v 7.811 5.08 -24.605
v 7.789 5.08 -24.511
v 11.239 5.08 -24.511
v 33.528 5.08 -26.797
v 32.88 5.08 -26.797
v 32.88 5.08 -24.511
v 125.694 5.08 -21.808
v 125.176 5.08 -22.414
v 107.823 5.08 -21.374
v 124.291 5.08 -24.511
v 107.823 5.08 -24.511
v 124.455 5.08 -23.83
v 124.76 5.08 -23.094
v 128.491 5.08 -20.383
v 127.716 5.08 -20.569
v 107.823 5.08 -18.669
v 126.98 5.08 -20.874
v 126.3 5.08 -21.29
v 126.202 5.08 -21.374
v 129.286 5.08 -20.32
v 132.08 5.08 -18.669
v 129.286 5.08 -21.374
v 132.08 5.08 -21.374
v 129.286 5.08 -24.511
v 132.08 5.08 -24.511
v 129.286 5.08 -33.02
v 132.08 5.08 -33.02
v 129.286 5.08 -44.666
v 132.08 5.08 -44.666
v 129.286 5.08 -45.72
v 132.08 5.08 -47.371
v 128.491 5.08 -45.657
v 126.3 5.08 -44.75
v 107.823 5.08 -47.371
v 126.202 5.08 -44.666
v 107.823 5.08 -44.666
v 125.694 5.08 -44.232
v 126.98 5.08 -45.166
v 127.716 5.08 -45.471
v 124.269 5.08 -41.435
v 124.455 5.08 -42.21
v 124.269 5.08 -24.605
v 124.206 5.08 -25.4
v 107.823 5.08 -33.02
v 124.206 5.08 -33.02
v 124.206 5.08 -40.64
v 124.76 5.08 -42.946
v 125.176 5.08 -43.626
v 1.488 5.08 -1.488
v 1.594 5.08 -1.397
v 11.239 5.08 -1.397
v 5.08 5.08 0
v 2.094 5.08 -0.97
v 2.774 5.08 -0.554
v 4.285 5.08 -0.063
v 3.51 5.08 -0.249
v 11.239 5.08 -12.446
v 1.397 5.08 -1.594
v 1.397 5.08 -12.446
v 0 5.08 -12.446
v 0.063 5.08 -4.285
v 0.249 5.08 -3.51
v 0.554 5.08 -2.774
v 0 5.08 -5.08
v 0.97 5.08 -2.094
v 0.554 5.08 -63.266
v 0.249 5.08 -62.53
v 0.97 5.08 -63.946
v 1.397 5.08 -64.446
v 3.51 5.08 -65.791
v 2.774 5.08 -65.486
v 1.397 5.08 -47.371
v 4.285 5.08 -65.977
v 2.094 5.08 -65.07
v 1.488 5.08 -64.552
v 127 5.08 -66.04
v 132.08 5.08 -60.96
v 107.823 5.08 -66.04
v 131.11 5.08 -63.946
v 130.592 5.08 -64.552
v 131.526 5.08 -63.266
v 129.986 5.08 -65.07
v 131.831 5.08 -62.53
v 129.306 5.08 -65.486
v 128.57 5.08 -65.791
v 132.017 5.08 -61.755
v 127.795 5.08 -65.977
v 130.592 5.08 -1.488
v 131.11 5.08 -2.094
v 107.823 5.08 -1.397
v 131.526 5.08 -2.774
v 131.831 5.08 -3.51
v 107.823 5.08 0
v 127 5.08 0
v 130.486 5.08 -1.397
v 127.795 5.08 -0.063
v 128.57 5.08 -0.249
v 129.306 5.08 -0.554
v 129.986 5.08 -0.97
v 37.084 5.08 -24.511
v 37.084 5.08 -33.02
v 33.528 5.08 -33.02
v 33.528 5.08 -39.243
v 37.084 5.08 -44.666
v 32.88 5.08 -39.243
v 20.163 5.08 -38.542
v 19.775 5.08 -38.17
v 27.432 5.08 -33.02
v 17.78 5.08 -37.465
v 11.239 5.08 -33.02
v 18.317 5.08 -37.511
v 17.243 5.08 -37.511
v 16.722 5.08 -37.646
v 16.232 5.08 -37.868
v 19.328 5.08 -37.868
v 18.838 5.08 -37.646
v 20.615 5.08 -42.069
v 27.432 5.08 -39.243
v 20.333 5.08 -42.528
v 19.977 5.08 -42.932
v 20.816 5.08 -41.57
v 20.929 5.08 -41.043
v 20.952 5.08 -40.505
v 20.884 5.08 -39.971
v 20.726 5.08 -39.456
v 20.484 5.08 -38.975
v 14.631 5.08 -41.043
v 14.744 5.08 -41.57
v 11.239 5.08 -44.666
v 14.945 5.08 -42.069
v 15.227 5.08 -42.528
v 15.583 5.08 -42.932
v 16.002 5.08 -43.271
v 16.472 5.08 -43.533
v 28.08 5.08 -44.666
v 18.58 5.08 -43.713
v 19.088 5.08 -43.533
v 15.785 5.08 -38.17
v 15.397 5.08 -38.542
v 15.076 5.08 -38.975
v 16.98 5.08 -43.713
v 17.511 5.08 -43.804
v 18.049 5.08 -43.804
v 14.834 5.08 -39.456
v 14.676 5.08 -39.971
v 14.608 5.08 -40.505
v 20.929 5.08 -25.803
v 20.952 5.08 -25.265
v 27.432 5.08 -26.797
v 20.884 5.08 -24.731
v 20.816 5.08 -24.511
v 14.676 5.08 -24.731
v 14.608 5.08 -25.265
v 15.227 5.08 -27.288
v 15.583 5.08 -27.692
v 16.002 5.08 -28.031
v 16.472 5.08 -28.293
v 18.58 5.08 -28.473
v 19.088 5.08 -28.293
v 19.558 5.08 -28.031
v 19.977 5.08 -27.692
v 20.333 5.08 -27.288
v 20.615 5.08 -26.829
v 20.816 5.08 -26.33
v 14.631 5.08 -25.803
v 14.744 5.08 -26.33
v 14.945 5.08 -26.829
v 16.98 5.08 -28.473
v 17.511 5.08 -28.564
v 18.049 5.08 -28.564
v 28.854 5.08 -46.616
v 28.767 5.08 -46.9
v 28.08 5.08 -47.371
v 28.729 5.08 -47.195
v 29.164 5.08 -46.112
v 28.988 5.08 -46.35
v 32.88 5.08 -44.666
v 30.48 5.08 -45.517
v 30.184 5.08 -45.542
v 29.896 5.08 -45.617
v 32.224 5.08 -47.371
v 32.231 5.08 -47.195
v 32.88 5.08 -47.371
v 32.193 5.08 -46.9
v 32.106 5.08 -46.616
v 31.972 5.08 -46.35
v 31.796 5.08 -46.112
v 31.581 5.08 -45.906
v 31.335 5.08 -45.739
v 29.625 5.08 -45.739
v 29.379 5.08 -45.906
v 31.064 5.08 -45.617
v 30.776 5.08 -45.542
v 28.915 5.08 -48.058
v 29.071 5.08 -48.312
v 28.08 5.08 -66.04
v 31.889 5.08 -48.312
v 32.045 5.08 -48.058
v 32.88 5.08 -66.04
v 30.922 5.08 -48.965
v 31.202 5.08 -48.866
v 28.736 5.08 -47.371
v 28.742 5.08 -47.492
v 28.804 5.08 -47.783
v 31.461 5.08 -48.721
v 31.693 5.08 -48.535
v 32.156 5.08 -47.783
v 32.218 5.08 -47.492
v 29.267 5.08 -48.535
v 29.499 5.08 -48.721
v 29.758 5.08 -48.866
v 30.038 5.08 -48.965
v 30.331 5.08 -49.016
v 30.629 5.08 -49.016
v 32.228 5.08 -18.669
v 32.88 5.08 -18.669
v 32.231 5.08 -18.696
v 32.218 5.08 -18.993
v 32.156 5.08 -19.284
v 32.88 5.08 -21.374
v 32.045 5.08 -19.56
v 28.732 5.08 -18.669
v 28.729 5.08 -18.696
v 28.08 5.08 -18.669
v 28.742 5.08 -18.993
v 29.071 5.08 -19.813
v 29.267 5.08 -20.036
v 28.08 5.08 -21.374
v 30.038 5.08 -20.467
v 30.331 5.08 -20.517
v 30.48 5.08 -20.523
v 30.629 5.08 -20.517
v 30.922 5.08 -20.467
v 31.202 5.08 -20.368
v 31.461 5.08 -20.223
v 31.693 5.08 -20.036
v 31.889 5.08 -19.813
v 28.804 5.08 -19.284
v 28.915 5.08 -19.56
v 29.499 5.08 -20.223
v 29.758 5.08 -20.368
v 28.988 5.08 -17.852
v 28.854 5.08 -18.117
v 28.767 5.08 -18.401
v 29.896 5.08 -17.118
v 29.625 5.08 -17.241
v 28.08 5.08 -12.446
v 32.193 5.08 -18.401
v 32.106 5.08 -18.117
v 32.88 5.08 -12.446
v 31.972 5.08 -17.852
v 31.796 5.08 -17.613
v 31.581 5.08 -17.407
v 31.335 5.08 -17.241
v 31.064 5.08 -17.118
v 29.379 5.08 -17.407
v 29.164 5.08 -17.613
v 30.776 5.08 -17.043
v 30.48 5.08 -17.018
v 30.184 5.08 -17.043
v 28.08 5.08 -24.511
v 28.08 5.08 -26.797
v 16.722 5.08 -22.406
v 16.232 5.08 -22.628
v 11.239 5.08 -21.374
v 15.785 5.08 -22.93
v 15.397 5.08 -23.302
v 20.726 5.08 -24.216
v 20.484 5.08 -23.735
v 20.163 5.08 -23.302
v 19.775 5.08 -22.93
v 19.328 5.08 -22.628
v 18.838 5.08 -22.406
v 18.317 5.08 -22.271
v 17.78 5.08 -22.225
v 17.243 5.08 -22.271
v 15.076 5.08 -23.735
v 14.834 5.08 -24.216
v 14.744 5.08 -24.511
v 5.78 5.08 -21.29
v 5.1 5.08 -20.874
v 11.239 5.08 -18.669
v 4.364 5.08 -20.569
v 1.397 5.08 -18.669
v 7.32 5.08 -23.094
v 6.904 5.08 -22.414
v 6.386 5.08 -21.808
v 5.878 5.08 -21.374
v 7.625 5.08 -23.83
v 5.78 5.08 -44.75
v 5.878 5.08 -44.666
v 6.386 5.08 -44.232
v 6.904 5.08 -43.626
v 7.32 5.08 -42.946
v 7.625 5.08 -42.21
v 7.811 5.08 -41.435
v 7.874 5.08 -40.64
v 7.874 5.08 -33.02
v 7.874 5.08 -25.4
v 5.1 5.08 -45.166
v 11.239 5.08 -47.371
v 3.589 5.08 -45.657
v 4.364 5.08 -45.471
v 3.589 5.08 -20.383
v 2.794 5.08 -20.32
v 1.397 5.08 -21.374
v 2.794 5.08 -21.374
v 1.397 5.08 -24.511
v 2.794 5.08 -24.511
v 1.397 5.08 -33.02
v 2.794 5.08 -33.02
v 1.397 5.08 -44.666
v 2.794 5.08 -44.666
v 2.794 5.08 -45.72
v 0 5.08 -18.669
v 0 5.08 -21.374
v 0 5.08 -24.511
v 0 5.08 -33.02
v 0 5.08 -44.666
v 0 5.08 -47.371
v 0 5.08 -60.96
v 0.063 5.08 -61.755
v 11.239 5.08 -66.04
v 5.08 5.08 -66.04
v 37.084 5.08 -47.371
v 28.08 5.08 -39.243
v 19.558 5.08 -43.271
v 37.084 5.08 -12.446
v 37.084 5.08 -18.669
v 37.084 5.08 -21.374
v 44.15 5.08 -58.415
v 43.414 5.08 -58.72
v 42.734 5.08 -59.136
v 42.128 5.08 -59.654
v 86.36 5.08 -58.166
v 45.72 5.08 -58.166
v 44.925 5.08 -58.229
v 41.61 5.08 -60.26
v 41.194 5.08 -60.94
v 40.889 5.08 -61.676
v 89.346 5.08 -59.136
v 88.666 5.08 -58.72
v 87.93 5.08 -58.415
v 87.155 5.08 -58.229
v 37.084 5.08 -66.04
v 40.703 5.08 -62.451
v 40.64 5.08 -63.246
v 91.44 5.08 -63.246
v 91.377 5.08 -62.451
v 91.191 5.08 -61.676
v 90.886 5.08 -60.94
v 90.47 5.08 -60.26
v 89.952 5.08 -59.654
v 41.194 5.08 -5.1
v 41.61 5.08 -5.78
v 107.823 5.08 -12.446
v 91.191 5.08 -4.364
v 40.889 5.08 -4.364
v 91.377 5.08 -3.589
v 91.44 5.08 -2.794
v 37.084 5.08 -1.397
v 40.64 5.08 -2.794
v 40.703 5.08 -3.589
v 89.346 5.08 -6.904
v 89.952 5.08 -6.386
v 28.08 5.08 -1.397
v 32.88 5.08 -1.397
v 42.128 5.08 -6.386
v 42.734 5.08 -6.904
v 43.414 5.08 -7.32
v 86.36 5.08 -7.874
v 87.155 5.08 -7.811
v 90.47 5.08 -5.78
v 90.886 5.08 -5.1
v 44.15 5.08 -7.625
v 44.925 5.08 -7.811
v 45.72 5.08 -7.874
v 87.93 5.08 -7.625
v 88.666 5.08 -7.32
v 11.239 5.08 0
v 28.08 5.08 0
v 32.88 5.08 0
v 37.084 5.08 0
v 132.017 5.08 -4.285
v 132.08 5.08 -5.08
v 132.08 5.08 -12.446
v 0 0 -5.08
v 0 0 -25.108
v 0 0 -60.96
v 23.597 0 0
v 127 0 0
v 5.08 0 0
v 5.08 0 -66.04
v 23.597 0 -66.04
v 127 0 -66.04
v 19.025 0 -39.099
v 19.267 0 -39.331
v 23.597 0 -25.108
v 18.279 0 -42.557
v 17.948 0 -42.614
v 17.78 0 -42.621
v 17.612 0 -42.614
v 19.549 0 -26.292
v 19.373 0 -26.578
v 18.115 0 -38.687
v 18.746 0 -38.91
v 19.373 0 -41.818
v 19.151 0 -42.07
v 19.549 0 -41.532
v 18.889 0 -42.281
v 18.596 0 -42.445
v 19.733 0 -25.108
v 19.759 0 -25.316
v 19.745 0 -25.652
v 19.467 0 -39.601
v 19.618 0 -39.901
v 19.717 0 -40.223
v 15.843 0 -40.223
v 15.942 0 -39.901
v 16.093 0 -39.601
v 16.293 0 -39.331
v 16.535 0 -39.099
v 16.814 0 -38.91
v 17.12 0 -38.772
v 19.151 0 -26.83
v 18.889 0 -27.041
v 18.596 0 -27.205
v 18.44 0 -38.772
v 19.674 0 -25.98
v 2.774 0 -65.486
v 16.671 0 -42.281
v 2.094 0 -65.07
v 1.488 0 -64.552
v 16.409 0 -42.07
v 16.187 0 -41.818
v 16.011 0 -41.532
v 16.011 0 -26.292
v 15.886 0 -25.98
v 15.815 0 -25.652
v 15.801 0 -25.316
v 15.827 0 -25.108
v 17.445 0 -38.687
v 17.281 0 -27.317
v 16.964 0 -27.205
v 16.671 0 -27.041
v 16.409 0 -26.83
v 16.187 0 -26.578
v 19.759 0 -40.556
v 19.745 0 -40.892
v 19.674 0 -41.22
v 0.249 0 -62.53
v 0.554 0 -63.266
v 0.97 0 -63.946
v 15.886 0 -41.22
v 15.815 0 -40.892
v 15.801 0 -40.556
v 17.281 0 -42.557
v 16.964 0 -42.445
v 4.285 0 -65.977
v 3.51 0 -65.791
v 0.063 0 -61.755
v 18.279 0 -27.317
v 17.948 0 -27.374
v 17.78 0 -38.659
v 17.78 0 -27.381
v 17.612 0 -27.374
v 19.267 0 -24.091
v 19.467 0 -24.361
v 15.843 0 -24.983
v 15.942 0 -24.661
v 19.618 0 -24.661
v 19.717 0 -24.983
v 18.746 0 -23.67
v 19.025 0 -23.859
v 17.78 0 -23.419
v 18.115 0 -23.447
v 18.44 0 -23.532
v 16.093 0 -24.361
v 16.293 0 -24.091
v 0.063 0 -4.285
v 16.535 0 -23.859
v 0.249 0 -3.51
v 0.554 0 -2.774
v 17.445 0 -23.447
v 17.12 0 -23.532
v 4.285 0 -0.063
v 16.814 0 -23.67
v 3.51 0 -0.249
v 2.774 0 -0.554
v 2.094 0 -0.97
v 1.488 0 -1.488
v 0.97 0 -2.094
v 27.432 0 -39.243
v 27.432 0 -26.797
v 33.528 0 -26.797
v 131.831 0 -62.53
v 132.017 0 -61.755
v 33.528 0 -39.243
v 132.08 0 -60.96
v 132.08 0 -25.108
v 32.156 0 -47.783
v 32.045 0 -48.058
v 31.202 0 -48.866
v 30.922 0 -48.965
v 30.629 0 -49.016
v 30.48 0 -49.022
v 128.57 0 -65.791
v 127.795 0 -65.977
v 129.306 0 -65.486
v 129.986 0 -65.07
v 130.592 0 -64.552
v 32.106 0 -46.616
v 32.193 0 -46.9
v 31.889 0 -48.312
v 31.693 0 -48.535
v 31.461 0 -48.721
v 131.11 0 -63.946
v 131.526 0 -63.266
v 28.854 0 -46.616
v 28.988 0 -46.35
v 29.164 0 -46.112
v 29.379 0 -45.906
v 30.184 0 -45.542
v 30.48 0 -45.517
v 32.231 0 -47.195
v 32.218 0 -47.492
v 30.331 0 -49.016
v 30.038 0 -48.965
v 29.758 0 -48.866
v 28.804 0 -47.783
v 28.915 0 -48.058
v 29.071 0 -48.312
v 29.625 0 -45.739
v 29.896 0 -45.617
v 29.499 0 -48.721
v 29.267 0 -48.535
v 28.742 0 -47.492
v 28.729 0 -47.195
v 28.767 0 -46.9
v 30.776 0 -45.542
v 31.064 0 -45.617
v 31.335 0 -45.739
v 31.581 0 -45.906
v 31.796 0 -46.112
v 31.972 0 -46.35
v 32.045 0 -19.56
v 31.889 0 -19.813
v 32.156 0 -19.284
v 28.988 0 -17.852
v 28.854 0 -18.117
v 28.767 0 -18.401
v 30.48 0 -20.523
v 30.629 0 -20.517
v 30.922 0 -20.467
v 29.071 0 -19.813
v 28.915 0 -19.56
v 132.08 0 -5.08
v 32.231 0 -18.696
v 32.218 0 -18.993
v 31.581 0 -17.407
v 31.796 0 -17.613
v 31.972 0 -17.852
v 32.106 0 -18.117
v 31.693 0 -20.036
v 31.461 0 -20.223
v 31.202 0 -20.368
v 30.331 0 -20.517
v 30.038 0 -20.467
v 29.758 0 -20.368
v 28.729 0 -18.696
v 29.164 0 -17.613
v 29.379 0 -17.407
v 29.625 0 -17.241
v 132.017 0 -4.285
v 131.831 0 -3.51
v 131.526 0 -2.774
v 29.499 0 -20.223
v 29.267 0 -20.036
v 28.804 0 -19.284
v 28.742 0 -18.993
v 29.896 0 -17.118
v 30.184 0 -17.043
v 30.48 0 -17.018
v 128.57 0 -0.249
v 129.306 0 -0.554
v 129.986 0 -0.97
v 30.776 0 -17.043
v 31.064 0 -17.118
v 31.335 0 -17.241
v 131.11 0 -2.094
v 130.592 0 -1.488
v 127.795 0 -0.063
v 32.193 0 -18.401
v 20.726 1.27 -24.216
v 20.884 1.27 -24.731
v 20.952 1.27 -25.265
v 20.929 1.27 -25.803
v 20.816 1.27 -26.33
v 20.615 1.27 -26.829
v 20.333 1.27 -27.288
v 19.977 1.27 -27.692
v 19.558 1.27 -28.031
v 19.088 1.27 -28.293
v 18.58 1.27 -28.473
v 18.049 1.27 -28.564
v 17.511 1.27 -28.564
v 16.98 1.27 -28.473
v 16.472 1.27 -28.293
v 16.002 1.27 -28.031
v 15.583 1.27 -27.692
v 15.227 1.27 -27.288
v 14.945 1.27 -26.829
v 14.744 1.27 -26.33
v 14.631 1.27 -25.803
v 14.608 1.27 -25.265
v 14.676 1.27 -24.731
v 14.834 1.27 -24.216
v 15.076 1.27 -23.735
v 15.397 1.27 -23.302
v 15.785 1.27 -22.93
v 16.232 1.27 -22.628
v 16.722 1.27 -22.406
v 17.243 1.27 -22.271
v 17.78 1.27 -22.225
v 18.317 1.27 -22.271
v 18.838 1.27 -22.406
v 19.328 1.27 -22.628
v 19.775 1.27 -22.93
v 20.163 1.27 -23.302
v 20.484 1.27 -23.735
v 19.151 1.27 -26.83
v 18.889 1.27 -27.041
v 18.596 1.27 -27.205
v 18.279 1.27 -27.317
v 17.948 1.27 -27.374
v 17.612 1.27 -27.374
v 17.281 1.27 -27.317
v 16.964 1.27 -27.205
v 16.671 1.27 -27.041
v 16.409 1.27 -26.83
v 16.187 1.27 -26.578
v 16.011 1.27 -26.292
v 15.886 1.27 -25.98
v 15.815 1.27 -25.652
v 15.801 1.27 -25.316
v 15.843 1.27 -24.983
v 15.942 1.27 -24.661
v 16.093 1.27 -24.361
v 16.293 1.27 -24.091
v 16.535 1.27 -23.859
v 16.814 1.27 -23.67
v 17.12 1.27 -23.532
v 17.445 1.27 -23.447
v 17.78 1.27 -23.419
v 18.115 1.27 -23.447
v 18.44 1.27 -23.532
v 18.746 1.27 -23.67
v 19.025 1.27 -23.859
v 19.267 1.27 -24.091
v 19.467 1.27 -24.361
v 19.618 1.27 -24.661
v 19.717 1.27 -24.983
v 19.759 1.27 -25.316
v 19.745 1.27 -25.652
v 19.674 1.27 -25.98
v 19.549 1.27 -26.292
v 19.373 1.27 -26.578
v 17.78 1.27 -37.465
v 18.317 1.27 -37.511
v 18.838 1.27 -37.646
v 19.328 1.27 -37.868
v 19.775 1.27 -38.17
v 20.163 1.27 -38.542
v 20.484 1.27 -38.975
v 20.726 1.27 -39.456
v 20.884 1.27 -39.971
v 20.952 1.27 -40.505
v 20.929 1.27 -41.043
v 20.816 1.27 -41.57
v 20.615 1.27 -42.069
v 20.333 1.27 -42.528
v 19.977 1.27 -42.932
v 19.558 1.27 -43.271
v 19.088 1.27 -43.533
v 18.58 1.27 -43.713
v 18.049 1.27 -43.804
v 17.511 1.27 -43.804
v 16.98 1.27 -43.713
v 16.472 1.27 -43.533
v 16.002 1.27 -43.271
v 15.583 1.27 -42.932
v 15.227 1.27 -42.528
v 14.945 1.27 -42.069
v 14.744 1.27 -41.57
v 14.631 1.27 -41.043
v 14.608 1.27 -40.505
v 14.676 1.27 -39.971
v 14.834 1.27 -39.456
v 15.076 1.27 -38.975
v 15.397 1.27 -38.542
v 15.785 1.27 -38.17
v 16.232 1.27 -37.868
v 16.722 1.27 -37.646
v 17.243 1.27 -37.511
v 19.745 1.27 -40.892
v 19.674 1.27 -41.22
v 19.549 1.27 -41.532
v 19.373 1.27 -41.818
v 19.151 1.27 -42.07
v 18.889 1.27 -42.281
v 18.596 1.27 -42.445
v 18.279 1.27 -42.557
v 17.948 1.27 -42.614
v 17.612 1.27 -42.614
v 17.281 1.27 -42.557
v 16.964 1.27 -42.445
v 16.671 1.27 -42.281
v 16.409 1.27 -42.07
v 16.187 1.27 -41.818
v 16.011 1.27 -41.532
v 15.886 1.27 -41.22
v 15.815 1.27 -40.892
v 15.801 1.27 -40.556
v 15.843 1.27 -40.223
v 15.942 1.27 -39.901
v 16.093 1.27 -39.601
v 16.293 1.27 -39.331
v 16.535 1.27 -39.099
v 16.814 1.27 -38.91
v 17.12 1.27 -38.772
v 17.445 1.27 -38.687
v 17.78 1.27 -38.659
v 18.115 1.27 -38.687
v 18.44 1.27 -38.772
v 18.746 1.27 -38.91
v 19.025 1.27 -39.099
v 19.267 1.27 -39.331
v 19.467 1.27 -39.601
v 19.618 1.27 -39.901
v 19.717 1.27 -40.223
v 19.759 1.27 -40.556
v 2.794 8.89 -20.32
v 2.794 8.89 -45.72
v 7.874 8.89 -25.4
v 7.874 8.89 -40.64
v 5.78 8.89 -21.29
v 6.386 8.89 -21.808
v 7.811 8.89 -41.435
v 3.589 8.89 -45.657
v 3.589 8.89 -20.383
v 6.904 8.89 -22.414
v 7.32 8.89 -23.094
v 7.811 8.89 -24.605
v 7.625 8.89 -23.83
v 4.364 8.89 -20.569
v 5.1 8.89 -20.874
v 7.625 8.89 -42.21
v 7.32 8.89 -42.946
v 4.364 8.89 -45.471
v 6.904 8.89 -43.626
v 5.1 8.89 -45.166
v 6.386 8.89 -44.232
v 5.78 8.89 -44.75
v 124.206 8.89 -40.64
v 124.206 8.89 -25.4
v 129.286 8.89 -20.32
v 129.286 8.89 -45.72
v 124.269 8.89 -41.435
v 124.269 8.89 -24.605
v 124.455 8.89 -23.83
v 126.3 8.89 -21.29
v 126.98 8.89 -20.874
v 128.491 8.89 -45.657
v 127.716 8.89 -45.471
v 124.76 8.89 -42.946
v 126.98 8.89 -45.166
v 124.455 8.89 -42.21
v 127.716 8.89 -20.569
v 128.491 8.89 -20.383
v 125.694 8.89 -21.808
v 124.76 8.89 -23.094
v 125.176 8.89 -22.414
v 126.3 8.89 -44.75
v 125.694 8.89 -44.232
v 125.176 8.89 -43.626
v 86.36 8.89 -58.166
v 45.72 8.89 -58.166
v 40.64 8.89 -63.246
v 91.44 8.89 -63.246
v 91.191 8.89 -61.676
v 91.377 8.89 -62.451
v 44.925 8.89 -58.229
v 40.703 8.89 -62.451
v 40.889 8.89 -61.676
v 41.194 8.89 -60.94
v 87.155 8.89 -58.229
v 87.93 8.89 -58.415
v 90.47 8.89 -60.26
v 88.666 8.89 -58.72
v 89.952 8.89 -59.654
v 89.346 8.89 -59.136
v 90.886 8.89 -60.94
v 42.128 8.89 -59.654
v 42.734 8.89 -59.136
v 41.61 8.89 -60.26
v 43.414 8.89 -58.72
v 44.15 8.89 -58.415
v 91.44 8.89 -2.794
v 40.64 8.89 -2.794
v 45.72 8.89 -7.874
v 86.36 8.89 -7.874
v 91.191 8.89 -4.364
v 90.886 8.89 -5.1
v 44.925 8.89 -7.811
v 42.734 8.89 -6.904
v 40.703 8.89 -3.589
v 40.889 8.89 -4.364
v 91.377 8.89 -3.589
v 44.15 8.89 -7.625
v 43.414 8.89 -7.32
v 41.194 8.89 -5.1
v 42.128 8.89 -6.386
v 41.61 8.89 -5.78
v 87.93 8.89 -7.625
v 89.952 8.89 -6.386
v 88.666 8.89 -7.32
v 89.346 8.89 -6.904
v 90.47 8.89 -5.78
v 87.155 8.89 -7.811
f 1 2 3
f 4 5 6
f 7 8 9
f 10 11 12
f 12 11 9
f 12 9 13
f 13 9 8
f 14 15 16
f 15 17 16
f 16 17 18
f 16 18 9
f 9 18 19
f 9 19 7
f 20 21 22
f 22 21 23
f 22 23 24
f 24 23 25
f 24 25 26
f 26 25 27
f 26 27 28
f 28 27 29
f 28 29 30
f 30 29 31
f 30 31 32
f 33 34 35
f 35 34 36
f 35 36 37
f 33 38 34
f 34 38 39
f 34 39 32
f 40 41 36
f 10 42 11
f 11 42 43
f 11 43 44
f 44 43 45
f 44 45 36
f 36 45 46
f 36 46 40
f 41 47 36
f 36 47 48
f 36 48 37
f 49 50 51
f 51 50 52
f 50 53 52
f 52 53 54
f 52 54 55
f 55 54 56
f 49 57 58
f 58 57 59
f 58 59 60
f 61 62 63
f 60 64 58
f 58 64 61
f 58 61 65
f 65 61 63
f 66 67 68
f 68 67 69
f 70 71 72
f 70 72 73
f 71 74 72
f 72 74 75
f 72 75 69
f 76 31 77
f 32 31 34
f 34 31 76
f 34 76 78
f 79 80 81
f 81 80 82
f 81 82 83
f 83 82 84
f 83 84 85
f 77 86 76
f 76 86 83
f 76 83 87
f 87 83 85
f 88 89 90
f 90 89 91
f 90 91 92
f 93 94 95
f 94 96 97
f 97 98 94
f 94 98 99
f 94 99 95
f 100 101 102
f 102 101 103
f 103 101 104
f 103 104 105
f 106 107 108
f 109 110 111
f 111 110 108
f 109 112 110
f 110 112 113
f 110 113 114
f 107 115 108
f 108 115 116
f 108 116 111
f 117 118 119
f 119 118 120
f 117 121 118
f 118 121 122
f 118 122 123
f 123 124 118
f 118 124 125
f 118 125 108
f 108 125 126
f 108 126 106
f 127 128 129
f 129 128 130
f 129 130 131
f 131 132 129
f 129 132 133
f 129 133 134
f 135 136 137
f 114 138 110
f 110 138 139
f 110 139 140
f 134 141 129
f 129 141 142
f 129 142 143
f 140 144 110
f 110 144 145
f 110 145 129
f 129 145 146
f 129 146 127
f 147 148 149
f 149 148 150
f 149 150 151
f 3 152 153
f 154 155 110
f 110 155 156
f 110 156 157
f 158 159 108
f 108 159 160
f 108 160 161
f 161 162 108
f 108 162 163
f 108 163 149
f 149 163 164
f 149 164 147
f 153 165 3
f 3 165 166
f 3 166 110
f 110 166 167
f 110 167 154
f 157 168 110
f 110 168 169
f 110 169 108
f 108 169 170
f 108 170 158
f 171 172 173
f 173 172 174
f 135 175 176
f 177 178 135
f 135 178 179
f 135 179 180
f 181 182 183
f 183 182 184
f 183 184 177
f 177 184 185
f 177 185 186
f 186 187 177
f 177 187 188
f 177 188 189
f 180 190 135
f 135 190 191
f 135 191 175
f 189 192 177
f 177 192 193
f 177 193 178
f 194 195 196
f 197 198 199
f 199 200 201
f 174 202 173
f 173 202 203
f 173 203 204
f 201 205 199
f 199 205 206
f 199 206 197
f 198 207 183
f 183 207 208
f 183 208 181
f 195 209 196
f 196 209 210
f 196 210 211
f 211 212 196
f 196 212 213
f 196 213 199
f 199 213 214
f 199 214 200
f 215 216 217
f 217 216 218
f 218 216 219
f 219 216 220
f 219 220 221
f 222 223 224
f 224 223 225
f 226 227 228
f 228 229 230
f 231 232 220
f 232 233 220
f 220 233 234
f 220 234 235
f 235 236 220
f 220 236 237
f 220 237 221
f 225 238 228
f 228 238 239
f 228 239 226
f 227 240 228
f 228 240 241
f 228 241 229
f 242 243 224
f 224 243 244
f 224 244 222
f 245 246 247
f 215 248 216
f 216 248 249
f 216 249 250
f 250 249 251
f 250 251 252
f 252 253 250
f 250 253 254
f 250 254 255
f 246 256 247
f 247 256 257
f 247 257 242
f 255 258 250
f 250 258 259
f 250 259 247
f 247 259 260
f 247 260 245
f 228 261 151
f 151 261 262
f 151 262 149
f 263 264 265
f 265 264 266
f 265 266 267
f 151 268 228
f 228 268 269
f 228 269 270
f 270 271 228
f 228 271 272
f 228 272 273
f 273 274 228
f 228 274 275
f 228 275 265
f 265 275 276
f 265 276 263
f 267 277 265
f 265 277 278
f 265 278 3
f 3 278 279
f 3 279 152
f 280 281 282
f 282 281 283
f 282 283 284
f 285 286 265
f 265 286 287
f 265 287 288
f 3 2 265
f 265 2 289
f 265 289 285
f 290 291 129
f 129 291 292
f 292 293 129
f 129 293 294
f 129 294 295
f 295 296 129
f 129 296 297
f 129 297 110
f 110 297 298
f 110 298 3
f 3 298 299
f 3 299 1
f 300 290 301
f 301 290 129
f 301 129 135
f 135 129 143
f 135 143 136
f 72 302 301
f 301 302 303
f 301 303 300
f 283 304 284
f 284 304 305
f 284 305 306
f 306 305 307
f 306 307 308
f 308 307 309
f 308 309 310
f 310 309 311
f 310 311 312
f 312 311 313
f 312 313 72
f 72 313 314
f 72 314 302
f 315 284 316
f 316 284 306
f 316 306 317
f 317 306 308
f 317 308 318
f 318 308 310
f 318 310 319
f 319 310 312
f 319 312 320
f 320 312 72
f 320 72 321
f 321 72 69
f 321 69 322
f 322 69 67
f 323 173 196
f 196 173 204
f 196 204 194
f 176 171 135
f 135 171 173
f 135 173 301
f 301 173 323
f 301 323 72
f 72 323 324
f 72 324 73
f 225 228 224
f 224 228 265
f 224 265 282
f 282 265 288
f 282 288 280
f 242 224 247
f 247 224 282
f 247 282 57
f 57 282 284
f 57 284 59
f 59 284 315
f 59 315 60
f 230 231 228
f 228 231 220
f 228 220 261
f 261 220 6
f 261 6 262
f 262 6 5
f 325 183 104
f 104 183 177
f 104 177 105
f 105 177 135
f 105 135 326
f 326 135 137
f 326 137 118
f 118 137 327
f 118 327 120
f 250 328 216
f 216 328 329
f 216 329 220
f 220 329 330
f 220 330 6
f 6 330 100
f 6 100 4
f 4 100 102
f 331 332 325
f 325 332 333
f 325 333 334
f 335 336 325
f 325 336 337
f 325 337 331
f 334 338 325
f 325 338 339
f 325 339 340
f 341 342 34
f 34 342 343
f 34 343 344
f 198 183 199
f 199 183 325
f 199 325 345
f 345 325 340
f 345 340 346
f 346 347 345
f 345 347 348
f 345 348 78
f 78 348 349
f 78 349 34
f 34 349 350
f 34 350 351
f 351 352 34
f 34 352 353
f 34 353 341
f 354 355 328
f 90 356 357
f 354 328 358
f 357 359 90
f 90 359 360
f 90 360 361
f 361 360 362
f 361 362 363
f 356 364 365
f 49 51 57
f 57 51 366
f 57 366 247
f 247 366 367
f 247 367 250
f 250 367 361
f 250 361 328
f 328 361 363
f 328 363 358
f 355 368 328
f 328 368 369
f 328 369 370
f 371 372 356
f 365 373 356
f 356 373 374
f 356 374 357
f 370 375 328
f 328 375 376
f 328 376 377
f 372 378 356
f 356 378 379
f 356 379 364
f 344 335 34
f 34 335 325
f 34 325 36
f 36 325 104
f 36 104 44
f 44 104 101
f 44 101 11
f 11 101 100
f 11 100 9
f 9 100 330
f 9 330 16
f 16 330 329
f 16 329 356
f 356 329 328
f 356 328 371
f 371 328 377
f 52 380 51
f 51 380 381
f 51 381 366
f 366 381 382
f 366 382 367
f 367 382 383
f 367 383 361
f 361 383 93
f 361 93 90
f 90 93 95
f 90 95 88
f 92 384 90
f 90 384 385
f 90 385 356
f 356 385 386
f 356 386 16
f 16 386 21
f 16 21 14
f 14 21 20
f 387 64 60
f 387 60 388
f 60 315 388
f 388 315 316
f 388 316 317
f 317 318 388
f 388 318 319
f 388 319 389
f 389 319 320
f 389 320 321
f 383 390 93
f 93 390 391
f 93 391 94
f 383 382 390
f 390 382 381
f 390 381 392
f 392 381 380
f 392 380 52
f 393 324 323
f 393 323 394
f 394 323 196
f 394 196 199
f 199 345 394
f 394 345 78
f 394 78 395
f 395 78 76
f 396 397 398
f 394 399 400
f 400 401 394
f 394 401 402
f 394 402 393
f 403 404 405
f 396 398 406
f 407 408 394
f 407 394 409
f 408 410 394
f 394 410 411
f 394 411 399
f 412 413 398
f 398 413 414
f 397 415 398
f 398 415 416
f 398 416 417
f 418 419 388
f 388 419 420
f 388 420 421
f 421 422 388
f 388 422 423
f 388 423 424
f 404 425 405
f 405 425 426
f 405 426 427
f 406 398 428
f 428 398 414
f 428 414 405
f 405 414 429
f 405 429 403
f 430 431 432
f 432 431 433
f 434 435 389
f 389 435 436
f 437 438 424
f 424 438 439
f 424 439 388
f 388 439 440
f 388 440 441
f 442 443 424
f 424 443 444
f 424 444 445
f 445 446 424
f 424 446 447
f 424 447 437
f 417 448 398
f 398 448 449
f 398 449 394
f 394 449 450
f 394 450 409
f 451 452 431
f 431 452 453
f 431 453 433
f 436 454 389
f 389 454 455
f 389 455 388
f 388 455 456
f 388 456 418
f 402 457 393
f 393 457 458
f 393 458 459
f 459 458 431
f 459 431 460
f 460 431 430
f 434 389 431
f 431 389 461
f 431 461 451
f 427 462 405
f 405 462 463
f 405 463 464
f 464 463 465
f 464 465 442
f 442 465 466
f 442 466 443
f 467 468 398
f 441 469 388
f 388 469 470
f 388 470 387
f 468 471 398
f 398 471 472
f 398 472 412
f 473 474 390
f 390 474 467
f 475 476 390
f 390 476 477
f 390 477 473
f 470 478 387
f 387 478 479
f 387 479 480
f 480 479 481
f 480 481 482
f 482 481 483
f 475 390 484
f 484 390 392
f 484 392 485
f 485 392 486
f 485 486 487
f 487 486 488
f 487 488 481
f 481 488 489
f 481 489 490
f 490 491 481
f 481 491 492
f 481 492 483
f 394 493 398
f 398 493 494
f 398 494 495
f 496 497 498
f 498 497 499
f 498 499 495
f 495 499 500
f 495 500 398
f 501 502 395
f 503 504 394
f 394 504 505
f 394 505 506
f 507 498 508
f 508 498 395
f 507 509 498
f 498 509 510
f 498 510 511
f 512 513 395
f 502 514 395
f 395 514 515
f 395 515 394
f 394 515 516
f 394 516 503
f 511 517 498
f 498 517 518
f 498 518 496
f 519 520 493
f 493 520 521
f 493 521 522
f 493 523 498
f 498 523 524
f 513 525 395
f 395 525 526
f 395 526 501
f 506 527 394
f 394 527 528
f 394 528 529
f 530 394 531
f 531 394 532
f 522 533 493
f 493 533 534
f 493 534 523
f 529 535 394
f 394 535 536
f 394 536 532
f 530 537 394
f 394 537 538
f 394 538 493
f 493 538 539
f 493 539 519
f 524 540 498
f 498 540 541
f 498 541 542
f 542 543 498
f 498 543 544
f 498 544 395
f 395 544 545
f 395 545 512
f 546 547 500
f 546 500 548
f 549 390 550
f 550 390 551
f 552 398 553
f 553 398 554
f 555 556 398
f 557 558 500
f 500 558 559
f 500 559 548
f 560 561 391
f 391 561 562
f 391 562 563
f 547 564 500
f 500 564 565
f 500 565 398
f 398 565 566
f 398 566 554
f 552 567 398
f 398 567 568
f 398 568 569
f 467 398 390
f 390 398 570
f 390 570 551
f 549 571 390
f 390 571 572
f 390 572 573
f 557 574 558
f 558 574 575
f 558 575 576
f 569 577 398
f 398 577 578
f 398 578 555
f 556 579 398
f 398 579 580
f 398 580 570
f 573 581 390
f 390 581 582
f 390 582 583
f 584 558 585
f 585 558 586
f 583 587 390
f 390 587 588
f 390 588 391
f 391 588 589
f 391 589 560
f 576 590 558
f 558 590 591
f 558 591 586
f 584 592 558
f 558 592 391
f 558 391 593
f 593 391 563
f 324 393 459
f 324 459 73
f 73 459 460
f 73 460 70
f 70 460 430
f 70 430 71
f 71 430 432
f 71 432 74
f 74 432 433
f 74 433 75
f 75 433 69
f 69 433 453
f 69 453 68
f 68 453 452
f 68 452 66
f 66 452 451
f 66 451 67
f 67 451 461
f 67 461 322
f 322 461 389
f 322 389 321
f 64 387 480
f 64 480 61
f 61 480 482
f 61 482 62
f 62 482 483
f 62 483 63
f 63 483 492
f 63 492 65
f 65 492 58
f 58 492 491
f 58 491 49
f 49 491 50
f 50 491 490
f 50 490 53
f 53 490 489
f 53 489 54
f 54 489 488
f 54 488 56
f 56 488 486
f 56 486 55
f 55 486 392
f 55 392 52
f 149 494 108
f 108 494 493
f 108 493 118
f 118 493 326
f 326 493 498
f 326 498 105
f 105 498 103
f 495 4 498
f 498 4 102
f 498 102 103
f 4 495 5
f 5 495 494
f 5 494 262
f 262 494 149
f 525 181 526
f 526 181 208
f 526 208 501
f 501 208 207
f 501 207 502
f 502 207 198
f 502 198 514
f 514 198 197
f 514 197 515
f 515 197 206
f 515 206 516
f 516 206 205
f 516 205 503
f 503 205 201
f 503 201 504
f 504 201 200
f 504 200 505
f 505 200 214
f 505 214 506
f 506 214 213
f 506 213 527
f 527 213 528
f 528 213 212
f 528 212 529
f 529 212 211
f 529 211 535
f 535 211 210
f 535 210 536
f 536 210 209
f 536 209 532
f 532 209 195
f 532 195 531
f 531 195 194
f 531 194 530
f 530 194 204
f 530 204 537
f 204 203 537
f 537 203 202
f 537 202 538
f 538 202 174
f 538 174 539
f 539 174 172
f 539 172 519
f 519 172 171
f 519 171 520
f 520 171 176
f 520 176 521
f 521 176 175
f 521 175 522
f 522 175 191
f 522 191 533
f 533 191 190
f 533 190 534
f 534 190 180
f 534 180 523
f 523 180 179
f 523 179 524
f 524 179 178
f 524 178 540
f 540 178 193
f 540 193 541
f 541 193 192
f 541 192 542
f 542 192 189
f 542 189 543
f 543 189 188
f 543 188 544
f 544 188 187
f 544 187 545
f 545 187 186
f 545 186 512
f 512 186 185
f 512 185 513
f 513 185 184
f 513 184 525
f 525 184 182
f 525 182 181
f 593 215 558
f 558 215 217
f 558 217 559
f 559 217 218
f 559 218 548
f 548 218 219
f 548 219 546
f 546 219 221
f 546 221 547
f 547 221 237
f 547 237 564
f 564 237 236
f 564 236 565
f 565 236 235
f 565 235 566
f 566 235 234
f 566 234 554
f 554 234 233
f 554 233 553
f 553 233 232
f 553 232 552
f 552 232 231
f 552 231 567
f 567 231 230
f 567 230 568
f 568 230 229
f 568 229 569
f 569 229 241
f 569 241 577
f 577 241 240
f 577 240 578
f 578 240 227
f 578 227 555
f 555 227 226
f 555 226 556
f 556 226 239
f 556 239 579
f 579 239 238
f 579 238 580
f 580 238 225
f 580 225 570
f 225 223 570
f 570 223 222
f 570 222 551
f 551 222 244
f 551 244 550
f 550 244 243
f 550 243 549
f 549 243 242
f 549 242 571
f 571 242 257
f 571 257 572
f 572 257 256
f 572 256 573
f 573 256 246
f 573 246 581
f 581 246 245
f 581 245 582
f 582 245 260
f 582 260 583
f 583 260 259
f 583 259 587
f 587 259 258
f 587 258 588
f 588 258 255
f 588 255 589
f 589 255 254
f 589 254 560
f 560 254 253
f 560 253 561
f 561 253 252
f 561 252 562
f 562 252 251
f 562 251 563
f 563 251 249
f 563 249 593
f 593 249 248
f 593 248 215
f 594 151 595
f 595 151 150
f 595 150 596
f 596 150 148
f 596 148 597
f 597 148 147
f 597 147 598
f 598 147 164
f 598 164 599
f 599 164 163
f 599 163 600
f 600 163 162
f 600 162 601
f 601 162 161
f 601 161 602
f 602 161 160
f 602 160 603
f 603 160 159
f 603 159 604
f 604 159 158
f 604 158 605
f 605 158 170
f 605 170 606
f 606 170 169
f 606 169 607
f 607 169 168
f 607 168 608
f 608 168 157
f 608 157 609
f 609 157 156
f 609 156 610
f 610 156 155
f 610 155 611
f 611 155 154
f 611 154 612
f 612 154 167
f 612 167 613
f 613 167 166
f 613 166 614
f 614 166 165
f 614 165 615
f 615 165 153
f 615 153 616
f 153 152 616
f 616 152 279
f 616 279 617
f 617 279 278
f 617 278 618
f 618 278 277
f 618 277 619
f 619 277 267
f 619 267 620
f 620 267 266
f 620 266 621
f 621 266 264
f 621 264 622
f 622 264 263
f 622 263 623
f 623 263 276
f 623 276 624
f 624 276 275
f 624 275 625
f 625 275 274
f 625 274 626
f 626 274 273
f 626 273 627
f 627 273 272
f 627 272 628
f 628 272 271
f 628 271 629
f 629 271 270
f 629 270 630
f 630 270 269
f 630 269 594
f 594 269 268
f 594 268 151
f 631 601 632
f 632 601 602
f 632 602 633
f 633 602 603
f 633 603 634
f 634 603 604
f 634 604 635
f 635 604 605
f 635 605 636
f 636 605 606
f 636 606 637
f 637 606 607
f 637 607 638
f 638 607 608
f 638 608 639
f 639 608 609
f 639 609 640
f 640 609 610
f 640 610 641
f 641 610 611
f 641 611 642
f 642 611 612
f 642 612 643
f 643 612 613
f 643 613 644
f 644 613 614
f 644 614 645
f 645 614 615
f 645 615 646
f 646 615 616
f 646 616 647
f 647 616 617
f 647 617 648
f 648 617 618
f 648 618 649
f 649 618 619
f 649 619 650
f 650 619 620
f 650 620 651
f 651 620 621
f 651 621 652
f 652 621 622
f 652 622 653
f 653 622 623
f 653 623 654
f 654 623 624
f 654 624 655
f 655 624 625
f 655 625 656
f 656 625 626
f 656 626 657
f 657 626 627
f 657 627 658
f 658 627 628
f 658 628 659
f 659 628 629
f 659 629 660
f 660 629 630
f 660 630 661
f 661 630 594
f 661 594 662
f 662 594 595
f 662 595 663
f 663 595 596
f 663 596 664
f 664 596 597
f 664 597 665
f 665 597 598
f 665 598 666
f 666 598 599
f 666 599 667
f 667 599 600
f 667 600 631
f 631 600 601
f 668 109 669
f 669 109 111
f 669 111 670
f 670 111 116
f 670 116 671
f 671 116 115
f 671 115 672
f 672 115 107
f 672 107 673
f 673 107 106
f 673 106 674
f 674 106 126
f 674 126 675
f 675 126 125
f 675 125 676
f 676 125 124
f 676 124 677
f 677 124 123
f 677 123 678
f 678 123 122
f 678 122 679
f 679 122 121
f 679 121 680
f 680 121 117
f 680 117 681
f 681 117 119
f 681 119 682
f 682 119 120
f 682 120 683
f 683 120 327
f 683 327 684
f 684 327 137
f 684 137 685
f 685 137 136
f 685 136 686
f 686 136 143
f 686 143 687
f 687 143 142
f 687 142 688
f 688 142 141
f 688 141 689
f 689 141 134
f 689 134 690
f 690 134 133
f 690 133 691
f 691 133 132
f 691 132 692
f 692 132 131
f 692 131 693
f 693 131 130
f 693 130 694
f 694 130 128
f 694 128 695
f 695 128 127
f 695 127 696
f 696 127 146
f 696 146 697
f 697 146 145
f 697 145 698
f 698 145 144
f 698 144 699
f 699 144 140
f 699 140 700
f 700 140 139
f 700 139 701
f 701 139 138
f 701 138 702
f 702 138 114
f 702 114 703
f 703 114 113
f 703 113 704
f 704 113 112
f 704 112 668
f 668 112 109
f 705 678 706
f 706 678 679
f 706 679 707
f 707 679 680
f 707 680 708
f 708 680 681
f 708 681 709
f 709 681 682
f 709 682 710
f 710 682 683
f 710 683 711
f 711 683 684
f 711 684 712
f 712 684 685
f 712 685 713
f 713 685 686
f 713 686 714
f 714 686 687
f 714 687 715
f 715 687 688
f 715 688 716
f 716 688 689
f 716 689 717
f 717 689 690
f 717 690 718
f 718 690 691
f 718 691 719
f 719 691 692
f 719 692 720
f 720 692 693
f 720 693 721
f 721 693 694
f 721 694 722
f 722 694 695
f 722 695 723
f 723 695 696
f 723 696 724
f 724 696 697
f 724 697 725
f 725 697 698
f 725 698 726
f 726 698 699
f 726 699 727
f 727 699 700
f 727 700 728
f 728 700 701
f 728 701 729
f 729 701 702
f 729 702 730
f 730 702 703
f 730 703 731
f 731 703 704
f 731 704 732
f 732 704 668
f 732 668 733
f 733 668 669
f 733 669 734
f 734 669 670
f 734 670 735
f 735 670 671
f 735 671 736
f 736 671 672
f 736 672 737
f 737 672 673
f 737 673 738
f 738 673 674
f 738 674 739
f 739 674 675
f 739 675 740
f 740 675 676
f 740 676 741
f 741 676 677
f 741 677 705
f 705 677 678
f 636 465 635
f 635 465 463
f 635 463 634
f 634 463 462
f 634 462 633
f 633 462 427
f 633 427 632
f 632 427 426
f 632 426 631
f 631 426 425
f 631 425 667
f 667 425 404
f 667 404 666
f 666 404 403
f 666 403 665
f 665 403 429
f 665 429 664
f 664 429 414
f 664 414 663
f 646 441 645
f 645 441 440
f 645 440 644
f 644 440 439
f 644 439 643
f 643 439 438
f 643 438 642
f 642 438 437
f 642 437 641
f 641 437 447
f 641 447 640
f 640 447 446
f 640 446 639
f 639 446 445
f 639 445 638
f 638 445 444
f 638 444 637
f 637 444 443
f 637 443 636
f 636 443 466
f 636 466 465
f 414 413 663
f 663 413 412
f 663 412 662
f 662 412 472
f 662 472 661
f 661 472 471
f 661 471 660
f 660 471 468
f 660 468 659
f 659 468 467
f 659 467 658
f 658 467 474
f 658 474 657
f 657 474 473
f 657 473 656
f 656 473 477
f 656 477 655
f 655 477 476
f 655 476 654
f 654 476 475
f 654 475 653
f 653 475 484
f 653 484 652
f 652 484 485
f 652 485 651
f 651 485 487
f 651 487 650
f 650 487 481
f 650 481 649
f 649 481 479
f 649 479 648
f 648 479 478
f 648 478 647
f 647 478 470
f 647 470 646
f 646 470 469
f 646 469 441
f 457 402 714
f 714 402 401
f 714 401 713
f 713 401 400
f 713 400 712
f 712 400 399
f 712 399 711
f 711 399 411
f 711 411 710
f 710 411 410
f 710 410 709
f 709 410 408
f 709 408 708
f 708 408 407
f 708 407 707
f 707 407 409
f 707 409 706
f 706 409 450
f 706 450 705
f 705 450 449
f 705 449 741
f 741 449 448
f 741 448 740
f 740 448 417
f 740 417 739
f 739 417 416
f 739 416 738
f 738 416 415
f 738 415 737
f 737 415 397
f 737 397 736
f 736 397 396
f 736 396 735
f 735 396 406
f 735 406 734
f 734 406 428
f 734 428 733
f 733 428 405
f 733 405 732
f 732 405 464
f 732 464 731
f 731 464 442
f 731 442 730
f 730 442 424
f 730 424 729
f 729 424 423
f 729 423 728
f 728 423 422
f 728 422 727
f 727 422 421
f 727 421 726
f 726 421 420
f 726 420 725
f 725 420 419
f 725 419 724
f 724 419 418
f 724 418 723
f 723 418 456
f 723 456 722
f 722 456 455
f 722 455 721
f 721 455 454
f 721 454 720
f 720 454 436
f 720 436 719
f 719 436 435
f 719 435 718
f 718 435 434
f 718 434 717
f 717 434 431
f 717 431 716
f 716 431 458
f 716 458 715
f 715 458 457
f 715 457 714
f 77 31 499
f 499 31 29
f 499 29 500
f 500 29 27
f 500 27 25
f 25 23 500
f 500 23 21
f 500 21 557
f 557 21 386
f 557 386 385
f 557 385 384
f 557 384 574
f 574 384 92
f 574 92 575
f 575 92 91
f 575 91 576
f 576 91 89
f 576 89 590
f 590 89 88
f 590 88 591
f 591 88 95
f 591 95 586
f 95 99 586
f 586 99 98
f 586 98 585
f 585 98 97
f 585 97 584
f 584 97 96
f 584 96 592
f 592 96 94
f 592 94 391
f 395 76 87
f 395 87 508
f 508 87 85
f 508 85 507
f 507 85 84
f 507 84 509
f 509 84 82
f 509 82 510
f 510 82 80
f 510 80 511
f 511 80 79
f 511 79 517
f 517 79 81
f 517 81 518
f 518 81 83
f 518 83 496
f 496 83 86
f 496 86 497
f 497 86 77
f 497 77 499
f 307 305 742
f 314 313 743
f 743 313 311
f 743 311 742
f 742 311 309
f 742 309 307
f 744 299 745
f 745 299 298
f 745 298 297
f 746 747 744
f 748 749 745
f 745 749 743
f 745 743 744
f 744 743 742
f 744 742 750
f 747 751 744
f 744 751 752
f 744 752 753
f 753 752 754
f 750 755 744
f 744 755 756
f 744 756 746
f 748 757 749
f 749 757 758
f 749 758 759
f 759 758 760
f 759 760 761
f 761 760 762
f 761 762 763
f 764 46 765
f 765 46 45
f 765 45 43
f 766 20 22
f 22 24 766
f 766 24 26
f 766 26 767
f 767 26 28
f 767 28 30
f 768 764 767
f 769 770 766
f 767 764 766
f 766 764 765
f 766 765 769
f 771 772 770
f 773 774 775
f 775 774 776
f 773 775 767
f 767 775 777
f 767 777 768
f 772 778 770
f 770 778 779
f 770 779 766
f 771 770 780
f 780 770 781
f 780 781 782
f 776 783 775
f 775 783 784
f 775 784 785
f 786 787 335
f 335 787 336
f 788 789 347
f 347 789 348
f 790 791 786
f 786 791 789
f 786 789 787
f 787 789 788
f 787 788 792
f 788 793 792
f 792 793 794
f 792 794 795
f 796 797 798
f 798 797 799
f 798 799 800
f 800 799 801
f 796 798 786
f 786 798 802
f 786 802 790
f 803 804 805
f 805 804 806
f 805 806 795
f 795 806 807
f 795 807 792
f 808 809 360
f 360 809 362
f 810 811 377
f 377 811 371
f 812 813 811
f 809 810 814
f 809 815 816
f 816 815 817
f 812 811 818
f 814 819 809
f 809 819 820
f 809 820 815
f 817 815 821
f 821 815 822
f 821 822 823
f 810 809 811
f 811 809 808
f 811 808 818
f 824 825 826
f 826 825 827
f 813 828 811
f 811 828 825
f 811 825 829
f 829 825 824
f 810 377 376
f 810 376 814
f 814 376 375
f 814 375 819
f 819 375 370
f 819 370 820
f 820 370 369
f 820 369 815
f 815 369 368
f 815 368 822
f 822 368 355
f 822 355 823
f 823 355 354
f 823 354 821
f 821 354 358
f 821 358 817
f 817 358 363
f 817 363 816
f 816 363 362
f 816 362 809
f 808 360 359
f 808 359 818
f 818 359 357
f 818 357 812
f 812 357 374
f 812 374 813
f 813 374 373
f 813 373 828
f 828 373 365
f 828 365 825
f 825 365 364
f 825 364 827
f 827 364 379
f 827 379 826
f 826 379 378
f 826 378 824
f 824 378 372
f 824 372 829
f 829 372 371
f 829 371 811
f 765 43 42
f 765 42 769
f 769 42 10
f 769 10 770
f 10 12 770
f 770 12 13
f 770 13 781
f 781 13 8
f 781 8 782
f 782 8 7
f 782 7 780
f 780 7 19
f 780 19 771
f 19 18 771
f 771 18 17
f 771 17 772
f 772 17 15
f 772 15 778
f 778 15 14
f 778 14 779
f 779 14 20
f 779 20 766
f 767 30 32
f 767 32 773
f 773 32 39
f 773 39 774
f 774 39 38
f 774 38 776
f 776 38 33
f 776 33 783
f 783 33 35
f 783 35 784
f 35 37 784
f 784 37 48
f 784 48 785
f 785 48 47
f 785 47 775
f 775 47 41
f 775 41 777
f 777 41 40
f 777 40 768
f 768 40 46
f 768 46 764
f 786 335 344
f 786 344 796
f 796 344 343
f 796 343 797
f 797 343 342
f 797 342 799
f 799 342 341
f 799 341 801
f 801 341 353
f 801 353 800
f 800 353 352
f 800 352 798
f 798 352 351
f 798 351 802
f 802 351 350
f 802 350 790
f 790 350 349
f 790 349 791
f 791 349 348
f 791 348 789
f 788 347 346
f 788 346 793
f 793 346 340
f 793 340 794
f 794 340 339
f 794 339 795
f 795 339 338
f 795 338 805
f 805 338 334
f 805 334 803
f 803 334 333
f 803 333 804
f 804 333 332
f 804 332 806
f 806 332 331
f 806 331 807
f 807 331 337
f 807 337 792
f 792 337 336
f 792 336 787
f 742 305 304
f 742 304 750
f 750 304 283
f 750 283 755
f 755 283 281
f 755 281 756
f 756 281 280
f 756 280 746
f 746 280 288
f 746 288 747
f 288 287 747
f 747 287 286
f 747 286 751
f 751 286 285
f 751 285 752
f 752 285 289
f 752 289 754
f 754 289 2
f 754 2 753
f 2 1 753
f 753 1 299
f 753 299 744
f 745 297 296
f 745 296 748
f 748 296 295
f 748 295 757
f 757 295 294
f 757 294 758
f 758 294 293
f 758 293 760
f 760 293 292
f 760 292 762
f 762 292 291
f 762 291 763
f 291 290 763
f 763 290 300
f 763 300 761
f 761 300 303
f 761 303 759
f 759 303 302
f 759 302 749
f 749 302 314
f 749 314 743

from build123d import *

# Parameters (mm, degrees)
SKETCH1_W           = 121.92
SKETCH1_H           = 66.04
BOSS_EXTRUDE1_DEPTH = 5.08
FILLET1_R           = 5.08
CUT_EXTRUDE2_REACH  = 140.75
SKETCH2_R           = 1.7526
SKETCH2_W           = 6.096
SKETCH2_H           = 12.446
SKETCH3_R           = 3.175
CUT_EXTRUDE3_DEPTH  = 3.81
CUT_EXTRUDE4_REACH  = 140.709
SKETCH4_R           = 1.9812
SKETCH8_W           = 15.24
SKETCH8_H           = 66.04
BOSS_EXTRUDE2_DEPTH = 5.08
FILLET4_R           = 5.08
SKETCH10_W          = 5.08
SKETCH10_H          = 25.4
BOSS_EXTRUDE4_DEPTH = 3.81
SKETCH11_W          = 50.8
SKETCH11_H          = 5.08
BOSS_EXTRUDE5_DEPTH = 3.81
FILLET5_R           = 5.08


with BuildPart() as part:
    # Sketch1 → Boss-Extrude1 (new body)
    with BuildSketch(Plane(origin=(0, 0, 0), x_dir=(1, 0, 0), z_dir=(0, 1, 0))):
        with Locations((60.96, 33.02)):
            Rectangle(SKETCH1_W, SKETCH1_H)
    extrude(amount=BOSS_EXTRUDE1_DEPTH)

    # Fillet1
    fillet1_edges = [part.edges().sort_by_distance(p)[0] for p in [
        (0, 2.54, -66.04),
        (121.92, 2.54, -66.04),
        (121.92, 2.54, 0),
        (0, 2.54, 0),
    ]]
    fillet(fillet1_edges, radius=FILLET1_R)

    # Sketch2 → Cut-Extrude2 (cut, up to next)
    with BuildSketch(Plane(origin=(0, 5.08, 0), x_dir=(1, 0, 0), z_dir=(0, 1, 0)), mode=Mode.PRIVATE) as cut_extrude2_sk1:
        with Locations(Location((30.48, 47.2694, 0), (0, 0, 270))):
            Circle(SKETCH2_R)
    cut_extrude2_tool1 = extrude(cut_extrude2_sk1.sketch, amount=-CUT_EXTRUDE2_REACH, mode=Mode.PRIVATE) & part.part
    # Sketch2 → Cut-Extrude2 (cut, up to next)
    with BuildSketch(Plane(origin=(0, 5.08, 0), x_dir=(1, 0, 0), z_dir=(0, 1, 0)), mode=Mode.PRIVATE) as cut_extrude2_sk2:
        with Locations(Location((30.48, 18.7706, 0), (0, 0, 90))):
            Circle(SKETCH2_R)
    cut_extrude2_tool2 = extrude(cut_extrude2_sk2.sketch, amount=-CUT_EXTRUDE2_REACH, mode=Mode.PRIVATE) & part.part
    # Sketch2 → Cut-Extrude2 (cut, up to next)
    with BuildSketch(Plane(origin=(0, 5.08, 0), x_dir=(1, 0, 0), z_dir=(0, 1, 0)), mode=Mode.PRIVATE) as cut_extrude2_sk3:
        with Locations((30.48, 33.02)):
            Rectangle(SKETCH2_W, SKETCH2_H)
    cut_extrude2_tool3 = extrude(cut_extrude2_sk3.sketch, amount=-CUT_EXTRUDE2_REACH, mode=Mode.PRIVATE) & part.part
    add(cut_extrude2_tool1.solids().sort_by_distance((30.48, 5.08, -47.2694))[0], mode=Mode.SUBTRACT)
    add(cut_extrude2_tool2.solids().sort_by_distance((30.48, 5.08, -18.7706))[0], mode=Mode.SUBTRACT)
    add(cut_extrude2_tool3.solids().sort_by_distance((30.48, 5.08, -33.02))[0], mode=Mode.SUBTRACT)

    # Sketch3 → Cut-Extrude3 (cut)
    with BuildSketch(Plane(origin=(0, 5.08, 0), x_dir=(1, 0, 0), z_dir=(0, 1, 0))):
        with Locations(Location((17.78, 40.64, 0), (0, 0, 270))):
            Circle(SKETCH3_R)
        with Locations(Location((17.78, 25.4, 0), (0, 0, 270))):
            Circle(SKETCH3_R)
    extrude(amount=-CUT_EXTRUDE3_DEPTH, mode=Mode.SUBTRACT)

    # Sketch4 → Cut-Extrude4 (cut, up to next)
    with BuildSketch(Plane(origin=(0, 1.27, 0), x_dir=(1, 0, 0), z_dir=(0, 1, 0)), mode=Mode.PRIVATE) as cut_extrude4_sk1:
        with Locations(Location((17.78, 40.64, 0), (0, 0, 270))):
            Circle(SKETCH4_R)
    cut_extrude4_tool1 = extrude(cut_extrude4_sk1.sketch, amount=-CUT_EXTRUDE4_REACH, mode=Mode.PRIVATE) & part.part
    # Sketch4 → Cut-Extrude4 (cut, up to next)
    with BuildSketch(Plane(origin=(0, 1.27, 0), x_dir=(1, 0, 0), z_dir=(0, 1, 0)), mode=Mode.PRIVATE) as cut_extrude4_sk2:
        with Locations(Location((17.78, 25.4, 0), (0, 0, 270))):
            Circle(SKETCH4_R)
    cut_extrude4_tool2 = extrude(cut_extrude4_sk2.sketch, amount=-CUT_EXTRUDE4_REACH, mode=Mode.PRIVATE) & part.part
    add(cut_extrude4_tool1.solids().sort_by_distance((17.78, 1.27, -40.64))[0], mode=Mode.SUBTRACT)
    add(cut_extrude4_tool2.solids().sort_by_distance((17.78, 1.27, -25.4))[0], mode=Mode.SUBTRACT)

    # Sketch8 → Boss-Extrude2 (add)
    with BuildSketch(Plane.XZ):
        with Locations((124.46, -33.02)):
            Rectangle(SKETCH8_W, SKETCH8_H)
    extrude(amount=-BOSS_EXTRUDE2_DEPTH)

    # Fillet4
    fillet4_edges = [part.edges().sort_by_distance(p)[0] for p in [
        (132.08, 2.54, 0),
        (132.08, 2.54, -66.04),
    ]]
    fillet(fillet4_edges, radius=FILLET4_R)

    # Sketch10 → Boss-Extrude4 (add)
    with BuildSketch(Plane(origin=(0, 5.08, 0), x_dir=(1, 0, 0), z_dir=(0, 1, 0))):
        with Locations((5.334, 33.02)):
            Rectangle(SKETCH10_W, SKETCH10_H)
        with Locations((126.746, 33.02)):
            Rectangle(SKETCH10_W, SKETCH10_H)
    extrude(amount=BOSS_EXTRUDE4_DEPTH)

    # Sketch11 → Boss-Extrude5 (add)
    with BuildSketch(Plane(origin=(0, 5.08, 0), x_dir=(1, 0, 0), z_dir=(0, 1, 0))):
        with Locations((66.04, 60.706)):
            Rectangle(SKETCH11_W, SKETCH11_H)
        with Locations((66.04, 5.334)):
            Rectangle(SKETCH11_W, SKETCH11_H)
    extrude(amount=BOSS_EXTRUDE5_DEPTH)

    # Fillet5
    fillet5_edges = [part.edges().sort_by_distance(p)[0] for p in [
        (40.64, 6.985, -7.874),
        (91.44, 6.985, -7.874),
        (124.206, 6.985, -20.32),
        (124.206, 6.985, -45.72),
        (91.44, 6.985, -58.166),
        (40.64, 6.985, -58.166),
        (7.874, 6.985, -20.32),
        (7.874, 6.985, -45.72),
    ]]
    fillet(fillet5_edges, radius=FILLET5_R - 0.0001)  # a hair under: the kernel refuses the full size


solid = part.part
